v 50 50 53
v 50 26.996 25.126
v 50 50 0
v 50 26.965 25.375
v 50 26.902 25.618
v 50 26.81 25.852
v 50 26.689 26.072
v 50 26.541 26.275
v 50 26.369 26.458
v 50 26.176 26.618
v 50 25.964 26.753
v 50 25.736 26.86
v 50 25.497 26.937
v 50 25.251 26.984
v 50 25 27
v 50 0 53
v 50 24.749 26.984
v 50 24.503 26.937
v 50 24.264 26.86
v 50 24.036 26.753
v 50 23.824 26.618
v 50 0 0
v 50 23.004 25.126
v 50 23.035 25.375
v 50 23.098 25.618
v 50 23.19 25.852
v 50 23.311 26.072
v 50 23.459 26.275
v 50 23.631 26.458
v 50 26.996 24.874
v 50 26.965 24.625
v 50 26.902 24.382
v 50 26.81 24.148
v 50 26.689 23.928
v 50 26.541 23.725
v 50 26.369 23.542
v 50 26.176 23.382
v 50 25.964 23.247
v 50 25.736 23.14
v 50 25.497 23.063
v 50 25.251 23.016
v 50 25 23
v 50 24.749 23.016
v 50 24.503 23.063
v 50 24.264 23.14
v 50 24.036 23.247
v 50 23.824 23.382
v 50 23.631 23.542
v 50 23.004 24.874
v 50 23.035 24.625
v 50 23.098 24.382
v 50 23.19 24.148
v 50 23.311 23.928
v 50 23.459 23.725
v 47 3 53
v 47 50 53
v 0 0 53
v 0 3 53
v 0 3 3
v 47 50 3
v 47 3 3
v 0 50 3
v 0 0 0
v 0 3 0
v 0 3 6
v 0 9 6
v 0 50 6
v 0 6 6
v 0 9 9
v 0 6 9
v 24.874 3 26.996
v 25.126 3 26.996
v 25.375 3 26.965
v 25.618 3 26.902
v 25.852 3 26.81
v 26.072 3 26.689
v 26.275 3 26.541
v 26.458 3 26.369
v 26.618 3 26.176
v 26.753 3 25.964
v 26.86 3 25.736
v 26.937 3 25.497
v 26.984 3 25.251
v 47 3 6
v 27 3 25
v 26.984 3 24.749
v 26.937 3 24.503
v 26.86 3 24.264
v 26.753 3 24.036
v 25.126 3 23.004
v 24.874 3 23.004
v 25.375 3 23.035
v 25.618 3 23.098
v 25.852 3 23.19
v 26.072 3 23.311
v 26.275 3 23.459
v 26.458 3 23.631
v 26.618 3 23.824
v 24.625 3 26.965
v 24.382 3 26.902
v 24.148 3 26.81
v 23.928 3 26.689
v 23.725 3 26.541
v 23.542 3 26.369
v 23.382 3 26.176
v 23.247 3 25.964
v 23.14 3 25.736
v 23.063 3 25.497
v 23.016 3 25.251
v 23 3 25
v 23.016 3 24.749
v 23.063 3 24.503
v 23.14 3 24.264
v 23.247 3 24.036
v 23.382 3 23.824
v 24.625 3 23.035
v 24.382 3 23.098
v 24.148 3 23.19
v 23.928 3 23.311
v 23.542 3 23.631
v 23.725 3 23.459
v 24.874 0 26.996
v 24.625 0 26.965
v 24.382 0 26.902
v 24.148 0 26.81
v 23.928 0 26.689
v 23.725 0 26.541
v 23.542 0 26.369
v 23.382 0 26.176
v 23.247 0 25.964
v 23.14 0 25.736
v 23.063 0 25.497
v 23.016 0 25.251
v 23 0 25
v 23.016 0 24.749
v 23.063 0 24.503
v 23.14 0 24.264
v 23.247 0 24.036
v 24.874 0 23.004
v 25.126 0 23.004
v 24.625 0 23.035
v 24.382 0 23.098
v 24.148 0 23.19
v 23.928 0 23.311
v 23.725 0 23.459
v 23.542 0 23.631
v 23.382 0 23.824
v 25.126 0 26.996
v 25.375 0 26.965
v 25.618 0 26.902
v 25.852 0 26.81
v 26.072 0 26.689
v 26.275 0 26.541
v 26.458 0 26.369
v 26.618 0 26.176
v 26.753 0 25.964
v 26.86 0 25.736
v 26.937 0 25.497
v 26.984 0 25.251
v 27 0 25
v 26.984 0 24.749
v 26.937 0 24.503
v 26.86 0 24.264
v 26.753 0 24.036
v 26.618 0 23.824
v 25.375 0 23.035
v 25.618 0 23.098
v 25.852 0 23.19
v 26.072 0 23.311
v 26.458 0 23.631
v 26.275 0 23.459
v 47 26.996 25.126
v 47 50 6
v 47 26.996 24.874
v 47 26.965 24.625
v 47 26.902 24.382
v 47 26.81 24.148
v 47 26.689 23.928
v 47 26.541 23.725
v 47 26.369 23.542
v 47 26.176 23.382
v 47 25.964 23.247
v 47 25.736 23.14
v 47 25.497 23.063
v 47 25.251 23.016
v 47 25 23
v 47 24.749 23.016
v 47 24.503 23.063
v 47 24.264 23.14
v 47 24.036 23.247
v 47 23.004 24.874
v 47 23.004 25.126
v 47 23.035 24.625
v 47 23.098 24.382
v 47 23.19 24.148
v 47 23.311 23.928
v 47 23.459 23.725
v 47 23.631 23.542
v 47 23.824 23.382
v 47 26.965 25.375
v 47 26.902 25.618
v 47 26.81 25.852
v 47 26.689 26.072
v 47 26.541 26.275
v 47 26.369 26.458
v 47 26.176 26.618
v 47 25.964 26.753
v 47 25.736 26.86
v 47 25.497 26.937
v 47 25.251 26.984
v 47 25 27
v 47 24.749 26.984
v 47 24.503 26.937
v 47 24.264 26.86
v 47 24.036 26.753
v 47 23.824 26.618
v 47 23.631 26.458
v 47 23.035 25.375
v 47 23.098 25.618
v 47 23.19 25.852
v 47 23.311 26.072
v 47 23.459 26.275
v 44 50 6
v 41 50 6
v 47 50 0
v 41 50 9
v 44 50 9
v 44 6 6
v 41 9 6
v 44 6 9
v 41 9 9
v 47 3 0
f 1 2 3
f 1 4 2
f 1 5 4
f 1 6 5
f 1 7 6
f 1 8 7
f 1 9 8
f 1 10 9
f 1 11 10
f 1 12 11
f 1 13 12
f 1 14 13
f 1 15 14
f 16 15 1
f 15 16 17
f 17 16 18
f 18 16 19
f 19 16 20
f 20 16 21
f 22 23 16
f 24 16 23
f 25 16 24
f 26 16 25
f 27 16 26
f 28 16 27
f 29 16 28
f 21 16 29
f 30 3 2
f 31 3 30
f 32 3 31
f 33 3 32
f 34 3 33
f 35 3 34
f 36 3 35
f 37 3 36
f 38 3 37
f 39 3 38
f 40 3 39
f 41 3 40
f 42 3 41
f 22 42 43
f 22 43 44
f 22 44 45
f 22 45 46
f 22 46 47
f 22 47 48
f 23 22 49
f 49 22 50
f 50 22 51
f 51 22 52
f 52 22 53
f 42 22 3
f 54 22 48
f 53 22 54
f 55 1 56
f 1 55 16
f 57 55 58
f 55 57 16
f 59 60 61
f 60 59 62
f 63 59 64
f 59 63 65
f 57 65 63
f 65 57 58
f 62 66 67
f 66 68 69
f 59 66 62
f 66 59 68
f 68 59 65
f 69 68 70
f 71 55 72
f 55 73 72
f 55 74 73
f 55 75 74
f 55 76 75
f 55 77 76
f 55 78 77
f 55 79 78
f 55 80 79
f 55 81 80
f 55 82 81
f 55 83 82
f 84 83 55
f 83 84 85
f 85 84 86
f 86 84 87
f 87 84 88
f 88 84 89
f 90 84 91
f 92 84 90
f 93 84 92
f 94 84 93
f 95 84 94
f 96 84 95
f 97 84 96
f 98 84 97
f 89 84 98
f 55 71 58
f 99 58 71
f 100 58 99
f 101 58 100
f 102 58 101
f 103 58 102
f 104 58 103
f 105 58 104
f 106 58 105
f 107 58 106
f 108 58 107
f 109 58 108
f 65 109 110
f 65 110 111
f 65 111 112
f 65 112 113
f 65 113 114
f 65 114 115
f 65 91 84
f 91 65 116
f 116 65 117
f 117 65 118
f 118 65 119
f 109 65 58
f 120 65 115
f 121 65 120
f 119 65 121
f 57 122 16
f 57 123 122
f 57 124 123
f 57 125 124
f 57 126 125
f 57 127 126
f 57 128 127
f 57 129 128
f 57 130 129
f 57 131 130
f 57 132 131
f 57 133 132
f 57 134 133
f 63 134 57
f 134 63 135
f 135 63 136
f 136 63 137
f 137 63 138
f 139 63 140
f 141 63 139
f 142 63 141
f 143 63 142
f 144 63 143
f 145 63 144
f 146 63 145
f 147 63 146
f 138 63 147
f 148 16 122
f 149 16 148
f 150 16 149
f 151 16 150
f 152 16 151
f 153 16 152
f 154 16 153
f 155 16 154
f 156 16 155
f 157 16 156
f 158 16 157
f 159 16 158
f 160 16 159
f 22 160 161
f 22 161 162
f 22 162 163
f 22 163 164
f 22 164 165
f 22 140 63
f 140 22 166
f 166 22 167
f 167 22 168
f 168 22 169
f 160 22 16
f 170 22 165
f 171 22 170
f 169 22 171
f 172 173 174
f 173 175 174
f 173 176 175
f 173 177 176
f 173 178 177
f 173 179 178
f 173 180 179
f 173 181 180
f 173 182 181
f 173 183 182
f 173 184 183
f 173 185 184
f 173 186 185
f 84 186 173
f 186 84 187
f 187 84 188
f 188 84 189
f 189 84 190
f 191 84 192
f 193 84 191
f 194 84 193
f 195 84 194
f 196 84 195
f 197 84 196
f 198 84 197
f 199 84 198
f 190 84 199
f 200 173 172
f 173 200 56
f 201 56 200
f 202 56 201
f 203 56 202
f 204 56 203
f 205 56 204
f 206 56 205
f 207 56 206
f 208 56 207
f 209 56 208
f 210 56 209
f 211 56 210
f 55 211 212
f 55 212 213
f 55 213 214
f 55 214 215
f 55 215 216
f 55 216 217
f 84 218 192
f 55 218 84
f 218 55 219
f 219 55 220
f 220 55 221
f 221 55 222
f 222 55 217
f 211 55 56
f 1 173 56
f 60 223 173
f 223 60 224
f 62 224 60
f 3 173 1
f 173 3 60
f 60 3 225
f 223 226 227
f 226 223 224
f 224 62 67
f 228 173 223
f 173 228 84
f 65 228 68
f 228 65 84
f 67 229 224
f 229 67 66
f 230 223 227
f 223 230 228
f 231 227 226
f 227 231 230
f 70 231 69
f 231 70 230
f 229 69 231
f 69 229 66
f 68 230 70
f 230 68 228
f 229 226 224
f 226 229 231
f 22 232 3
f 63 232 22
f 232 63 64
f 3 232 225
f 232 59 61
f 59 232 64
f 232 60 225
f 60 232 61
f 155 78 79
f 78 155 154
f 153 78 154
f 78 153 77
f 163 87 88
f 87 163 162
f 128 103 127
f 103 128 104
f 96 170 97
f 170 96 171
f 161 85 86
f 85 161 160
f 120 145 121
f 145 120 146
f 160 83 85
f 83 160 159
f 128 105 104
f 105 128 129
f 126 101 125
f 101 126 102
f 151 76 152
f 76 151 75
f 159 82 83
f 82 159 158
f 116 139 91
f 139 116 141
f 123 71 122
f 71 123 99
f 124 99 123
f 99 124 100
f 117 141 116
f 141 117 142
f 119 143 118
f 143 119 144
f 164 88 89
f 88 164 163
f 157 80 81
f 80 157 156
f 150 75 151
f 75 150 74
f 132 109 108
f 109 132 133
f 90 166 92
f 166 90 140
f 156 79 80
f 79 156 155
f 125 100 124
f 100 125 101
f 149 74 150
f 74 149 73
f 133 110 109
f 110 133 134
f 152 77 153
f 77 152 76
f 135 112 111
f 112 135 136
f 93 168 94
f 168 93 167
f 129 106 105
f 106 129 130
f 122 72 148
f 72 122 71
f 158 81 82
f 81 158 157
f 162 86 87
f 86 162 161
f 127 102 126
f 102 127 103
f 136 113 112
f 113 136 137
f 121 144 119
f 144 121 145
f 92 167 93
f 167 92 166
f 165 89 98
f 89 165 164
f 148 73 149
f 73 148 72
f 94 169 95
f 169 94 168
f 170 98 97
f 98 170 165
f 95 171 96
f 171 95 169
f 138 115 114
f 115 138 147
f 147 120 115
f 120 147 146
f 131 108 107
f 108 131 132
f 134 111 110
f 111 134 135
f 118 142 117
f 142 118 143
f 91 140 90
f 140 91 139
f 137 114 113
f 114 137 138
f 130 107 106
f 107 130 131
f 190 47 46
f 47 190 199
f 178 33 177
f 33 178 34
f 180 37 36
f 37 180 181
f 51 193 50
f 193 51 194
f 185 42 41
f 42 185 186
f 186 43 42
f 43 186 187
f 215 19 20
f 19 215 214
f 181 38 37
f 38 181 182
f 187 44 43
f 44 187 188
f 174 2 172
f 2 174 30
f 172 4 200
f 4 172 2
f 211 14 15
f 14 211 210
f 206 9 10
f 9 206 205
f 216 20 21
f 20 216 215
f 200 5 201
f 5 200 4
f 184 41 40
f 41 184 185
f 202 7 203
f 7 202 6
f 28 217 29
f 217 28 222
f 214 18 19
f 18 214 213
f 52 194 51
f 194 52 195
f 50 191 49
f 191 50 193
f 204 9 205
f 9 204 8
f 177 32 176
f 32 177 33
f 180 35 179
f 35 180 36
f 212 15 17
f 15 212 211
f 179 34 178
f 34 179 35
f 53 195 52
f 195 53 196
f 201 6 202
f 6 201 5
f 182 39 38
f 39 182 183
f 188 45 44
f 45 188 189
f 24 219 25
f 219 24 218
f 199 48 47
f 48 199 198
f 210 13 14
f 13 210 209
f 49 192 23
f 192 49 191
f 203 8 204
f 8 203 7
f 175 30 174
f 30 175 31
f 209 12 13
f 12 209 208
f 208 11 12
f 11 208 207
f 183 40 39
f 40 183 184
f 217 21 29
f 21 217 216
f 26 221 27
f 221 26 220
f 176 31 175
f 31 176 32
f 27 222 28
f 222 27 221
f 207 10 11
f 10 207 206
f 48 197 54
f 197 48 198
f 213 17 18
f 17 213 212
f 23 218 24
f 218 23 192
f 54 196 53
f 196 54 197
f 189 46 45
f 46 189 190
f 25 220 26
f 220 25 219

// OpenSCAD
// file: enclosure_lib.scad
module SimpleCorner(wallWidth = 3,
                    totalWidth = 50,
                    totalHeight = 50,
                    totalDepth = 50,
                    gutterWidth = 3)
{
    // back wall
    cube([totalWidth,wallWidth,totalHeight]);
    // side wall
    translate([totalWidth,0,0])
        rotate([0,0,90])
            cube([totalDepth,wallWidth,totalHeight]);
    // base
    translate([0,totalDepth,0])
        rotate([90, 0, 0])
            cube([totalWidth,
                  wallWidth,
                  totalDepth]);
    // back gutter
    translate([0,
               wallWidth + gutterWidth,
               wallWidth * 2])
        rotate([0,90,0])
            cube([wallWidth, 
                  wallWidth, 
                  totalWidth - wallWidth - gutterWidth]);
    // side gutter
    translate([totalWidth - 2 * wallWidth - gutterWidth,
               totalDepth,
               wallWidth])
        rotate([90,0,0])
            cube([wallWidth, 
                  wallWidth, 
                  totalDepth - wallWidth - gutterWidth]);
    // gutter fill
    cube(3);
}
module Cone(holeRadius = 3)
{
    centerRadius    = 3;
    centerHeight    = 2;
    masterRadius    = 18;
    totalHeight     = 3;
    tanAlpha        = totalHeight / (masterRadius - centerRadius);
    holeHeight      = tanAlpha * (masterRadius - holeRadius);
    rotate_extrude()
        polygon(points=[
            [0, 0],
            [masterRadius, 0],
            [holeRadius, holeHeight],
            [holeRadius, 1],
            [0, 1]
        ]);
}
module Base(width = 50,
       depth = 50,
       halfHeight = 3)
{
    cube([width, depth, halfHeight]);
    translate([width / 2, depth / 2, halfHeight])
        Cone(3.5);
}

module BasedCorner(wallWidth = 3,
                   width = 50,
                   height = 50,
                   depth = 50,
                   gutterWidth = 3.4)
{
    translate([0, 0, wallWidth])
        union() {
            SimpleCorner(wallWidth, 
                         width, 
                         height - wallWidth, 
                         depth,
                         gutterWidth);
            translate([0,0, -wallWidth])
                difference() {
                    cube([width, depth, wallWidth]);
                    translate([width/2, depth/2, -.01])
                        Cone();
            }
        }
}

module top_profile(gutterWidth = 3) 
{
    polygon([
        [0, 0],
        [0, 9],
        [6, 9],
        [6, 6],
        [21,6],
        [21,3],
        [6 + gutterWidth, 3],
        [6 + gutterWidth, 0],
        [3 + gutterWidth, 0],
        [3 + gutterWidth, 3],
        [3, 3],
        [3, 0],
    ]);
}


module CableCoverBorderProfile(
    width = 6,
    borderHeight = 3,
    gutterHeight = 3,
    gutterWidth = 3)
{
    polygon([
        [0,0],
        [width, 0],
        [width, borderHeight],
        [width - gutterWidth, borderHeight],
        [width - gutterWidth, borderHeight + gutterHeight],
        [width, borderHeight + gutterHeight],
        [width, 2 * borderHeight + gutterHeight],
        [0, 2 * borderHeight + gutterHeight]
    ]);
}
module CableCoverBorderLinear(height = 10)
{
    linear_extrude(height)
        CableCoverBorderProfile();
}
union()
{
    //rotate_extrude(180)
    //    CableCoverBorderProfile();
    CableCoverBorderLinear();
    translate([-6, 3, 0])
        cube([6, 3, 10]);
    translate([-6, 9, 0])
        rotate([0, 0, 180])
            CableCoverBorderLinear();
}
// main file
use <enclosure_lib.scad>

$fn=50;
wall_h = 3;
h=50;
d=50;
w=50;
gutter_width=3;
difference() {
    union() 
    {
        translate([0, 0, wall_h])
            SimpleCorner(wall_h, w, h, d, gutter_width);
        translate([0, 0, 0])
            cube([w, wall_h, wall_h]);
        translate([w - wall_h, 0, 0])
            cube([wall_h, w, wall_h]);
    }
    // back hole
    translate([
        w / 2 ,
        wall_h+1,
        h / 2
    ])
        rotate([90])
            cylinder(5, 2, 2);
    // side hole
    translate([
        w - wall_h -1,
        w / 2,
        h / 2
    ])
        rotate([0, 90])
            cylinder(5, 2, 2);
}
